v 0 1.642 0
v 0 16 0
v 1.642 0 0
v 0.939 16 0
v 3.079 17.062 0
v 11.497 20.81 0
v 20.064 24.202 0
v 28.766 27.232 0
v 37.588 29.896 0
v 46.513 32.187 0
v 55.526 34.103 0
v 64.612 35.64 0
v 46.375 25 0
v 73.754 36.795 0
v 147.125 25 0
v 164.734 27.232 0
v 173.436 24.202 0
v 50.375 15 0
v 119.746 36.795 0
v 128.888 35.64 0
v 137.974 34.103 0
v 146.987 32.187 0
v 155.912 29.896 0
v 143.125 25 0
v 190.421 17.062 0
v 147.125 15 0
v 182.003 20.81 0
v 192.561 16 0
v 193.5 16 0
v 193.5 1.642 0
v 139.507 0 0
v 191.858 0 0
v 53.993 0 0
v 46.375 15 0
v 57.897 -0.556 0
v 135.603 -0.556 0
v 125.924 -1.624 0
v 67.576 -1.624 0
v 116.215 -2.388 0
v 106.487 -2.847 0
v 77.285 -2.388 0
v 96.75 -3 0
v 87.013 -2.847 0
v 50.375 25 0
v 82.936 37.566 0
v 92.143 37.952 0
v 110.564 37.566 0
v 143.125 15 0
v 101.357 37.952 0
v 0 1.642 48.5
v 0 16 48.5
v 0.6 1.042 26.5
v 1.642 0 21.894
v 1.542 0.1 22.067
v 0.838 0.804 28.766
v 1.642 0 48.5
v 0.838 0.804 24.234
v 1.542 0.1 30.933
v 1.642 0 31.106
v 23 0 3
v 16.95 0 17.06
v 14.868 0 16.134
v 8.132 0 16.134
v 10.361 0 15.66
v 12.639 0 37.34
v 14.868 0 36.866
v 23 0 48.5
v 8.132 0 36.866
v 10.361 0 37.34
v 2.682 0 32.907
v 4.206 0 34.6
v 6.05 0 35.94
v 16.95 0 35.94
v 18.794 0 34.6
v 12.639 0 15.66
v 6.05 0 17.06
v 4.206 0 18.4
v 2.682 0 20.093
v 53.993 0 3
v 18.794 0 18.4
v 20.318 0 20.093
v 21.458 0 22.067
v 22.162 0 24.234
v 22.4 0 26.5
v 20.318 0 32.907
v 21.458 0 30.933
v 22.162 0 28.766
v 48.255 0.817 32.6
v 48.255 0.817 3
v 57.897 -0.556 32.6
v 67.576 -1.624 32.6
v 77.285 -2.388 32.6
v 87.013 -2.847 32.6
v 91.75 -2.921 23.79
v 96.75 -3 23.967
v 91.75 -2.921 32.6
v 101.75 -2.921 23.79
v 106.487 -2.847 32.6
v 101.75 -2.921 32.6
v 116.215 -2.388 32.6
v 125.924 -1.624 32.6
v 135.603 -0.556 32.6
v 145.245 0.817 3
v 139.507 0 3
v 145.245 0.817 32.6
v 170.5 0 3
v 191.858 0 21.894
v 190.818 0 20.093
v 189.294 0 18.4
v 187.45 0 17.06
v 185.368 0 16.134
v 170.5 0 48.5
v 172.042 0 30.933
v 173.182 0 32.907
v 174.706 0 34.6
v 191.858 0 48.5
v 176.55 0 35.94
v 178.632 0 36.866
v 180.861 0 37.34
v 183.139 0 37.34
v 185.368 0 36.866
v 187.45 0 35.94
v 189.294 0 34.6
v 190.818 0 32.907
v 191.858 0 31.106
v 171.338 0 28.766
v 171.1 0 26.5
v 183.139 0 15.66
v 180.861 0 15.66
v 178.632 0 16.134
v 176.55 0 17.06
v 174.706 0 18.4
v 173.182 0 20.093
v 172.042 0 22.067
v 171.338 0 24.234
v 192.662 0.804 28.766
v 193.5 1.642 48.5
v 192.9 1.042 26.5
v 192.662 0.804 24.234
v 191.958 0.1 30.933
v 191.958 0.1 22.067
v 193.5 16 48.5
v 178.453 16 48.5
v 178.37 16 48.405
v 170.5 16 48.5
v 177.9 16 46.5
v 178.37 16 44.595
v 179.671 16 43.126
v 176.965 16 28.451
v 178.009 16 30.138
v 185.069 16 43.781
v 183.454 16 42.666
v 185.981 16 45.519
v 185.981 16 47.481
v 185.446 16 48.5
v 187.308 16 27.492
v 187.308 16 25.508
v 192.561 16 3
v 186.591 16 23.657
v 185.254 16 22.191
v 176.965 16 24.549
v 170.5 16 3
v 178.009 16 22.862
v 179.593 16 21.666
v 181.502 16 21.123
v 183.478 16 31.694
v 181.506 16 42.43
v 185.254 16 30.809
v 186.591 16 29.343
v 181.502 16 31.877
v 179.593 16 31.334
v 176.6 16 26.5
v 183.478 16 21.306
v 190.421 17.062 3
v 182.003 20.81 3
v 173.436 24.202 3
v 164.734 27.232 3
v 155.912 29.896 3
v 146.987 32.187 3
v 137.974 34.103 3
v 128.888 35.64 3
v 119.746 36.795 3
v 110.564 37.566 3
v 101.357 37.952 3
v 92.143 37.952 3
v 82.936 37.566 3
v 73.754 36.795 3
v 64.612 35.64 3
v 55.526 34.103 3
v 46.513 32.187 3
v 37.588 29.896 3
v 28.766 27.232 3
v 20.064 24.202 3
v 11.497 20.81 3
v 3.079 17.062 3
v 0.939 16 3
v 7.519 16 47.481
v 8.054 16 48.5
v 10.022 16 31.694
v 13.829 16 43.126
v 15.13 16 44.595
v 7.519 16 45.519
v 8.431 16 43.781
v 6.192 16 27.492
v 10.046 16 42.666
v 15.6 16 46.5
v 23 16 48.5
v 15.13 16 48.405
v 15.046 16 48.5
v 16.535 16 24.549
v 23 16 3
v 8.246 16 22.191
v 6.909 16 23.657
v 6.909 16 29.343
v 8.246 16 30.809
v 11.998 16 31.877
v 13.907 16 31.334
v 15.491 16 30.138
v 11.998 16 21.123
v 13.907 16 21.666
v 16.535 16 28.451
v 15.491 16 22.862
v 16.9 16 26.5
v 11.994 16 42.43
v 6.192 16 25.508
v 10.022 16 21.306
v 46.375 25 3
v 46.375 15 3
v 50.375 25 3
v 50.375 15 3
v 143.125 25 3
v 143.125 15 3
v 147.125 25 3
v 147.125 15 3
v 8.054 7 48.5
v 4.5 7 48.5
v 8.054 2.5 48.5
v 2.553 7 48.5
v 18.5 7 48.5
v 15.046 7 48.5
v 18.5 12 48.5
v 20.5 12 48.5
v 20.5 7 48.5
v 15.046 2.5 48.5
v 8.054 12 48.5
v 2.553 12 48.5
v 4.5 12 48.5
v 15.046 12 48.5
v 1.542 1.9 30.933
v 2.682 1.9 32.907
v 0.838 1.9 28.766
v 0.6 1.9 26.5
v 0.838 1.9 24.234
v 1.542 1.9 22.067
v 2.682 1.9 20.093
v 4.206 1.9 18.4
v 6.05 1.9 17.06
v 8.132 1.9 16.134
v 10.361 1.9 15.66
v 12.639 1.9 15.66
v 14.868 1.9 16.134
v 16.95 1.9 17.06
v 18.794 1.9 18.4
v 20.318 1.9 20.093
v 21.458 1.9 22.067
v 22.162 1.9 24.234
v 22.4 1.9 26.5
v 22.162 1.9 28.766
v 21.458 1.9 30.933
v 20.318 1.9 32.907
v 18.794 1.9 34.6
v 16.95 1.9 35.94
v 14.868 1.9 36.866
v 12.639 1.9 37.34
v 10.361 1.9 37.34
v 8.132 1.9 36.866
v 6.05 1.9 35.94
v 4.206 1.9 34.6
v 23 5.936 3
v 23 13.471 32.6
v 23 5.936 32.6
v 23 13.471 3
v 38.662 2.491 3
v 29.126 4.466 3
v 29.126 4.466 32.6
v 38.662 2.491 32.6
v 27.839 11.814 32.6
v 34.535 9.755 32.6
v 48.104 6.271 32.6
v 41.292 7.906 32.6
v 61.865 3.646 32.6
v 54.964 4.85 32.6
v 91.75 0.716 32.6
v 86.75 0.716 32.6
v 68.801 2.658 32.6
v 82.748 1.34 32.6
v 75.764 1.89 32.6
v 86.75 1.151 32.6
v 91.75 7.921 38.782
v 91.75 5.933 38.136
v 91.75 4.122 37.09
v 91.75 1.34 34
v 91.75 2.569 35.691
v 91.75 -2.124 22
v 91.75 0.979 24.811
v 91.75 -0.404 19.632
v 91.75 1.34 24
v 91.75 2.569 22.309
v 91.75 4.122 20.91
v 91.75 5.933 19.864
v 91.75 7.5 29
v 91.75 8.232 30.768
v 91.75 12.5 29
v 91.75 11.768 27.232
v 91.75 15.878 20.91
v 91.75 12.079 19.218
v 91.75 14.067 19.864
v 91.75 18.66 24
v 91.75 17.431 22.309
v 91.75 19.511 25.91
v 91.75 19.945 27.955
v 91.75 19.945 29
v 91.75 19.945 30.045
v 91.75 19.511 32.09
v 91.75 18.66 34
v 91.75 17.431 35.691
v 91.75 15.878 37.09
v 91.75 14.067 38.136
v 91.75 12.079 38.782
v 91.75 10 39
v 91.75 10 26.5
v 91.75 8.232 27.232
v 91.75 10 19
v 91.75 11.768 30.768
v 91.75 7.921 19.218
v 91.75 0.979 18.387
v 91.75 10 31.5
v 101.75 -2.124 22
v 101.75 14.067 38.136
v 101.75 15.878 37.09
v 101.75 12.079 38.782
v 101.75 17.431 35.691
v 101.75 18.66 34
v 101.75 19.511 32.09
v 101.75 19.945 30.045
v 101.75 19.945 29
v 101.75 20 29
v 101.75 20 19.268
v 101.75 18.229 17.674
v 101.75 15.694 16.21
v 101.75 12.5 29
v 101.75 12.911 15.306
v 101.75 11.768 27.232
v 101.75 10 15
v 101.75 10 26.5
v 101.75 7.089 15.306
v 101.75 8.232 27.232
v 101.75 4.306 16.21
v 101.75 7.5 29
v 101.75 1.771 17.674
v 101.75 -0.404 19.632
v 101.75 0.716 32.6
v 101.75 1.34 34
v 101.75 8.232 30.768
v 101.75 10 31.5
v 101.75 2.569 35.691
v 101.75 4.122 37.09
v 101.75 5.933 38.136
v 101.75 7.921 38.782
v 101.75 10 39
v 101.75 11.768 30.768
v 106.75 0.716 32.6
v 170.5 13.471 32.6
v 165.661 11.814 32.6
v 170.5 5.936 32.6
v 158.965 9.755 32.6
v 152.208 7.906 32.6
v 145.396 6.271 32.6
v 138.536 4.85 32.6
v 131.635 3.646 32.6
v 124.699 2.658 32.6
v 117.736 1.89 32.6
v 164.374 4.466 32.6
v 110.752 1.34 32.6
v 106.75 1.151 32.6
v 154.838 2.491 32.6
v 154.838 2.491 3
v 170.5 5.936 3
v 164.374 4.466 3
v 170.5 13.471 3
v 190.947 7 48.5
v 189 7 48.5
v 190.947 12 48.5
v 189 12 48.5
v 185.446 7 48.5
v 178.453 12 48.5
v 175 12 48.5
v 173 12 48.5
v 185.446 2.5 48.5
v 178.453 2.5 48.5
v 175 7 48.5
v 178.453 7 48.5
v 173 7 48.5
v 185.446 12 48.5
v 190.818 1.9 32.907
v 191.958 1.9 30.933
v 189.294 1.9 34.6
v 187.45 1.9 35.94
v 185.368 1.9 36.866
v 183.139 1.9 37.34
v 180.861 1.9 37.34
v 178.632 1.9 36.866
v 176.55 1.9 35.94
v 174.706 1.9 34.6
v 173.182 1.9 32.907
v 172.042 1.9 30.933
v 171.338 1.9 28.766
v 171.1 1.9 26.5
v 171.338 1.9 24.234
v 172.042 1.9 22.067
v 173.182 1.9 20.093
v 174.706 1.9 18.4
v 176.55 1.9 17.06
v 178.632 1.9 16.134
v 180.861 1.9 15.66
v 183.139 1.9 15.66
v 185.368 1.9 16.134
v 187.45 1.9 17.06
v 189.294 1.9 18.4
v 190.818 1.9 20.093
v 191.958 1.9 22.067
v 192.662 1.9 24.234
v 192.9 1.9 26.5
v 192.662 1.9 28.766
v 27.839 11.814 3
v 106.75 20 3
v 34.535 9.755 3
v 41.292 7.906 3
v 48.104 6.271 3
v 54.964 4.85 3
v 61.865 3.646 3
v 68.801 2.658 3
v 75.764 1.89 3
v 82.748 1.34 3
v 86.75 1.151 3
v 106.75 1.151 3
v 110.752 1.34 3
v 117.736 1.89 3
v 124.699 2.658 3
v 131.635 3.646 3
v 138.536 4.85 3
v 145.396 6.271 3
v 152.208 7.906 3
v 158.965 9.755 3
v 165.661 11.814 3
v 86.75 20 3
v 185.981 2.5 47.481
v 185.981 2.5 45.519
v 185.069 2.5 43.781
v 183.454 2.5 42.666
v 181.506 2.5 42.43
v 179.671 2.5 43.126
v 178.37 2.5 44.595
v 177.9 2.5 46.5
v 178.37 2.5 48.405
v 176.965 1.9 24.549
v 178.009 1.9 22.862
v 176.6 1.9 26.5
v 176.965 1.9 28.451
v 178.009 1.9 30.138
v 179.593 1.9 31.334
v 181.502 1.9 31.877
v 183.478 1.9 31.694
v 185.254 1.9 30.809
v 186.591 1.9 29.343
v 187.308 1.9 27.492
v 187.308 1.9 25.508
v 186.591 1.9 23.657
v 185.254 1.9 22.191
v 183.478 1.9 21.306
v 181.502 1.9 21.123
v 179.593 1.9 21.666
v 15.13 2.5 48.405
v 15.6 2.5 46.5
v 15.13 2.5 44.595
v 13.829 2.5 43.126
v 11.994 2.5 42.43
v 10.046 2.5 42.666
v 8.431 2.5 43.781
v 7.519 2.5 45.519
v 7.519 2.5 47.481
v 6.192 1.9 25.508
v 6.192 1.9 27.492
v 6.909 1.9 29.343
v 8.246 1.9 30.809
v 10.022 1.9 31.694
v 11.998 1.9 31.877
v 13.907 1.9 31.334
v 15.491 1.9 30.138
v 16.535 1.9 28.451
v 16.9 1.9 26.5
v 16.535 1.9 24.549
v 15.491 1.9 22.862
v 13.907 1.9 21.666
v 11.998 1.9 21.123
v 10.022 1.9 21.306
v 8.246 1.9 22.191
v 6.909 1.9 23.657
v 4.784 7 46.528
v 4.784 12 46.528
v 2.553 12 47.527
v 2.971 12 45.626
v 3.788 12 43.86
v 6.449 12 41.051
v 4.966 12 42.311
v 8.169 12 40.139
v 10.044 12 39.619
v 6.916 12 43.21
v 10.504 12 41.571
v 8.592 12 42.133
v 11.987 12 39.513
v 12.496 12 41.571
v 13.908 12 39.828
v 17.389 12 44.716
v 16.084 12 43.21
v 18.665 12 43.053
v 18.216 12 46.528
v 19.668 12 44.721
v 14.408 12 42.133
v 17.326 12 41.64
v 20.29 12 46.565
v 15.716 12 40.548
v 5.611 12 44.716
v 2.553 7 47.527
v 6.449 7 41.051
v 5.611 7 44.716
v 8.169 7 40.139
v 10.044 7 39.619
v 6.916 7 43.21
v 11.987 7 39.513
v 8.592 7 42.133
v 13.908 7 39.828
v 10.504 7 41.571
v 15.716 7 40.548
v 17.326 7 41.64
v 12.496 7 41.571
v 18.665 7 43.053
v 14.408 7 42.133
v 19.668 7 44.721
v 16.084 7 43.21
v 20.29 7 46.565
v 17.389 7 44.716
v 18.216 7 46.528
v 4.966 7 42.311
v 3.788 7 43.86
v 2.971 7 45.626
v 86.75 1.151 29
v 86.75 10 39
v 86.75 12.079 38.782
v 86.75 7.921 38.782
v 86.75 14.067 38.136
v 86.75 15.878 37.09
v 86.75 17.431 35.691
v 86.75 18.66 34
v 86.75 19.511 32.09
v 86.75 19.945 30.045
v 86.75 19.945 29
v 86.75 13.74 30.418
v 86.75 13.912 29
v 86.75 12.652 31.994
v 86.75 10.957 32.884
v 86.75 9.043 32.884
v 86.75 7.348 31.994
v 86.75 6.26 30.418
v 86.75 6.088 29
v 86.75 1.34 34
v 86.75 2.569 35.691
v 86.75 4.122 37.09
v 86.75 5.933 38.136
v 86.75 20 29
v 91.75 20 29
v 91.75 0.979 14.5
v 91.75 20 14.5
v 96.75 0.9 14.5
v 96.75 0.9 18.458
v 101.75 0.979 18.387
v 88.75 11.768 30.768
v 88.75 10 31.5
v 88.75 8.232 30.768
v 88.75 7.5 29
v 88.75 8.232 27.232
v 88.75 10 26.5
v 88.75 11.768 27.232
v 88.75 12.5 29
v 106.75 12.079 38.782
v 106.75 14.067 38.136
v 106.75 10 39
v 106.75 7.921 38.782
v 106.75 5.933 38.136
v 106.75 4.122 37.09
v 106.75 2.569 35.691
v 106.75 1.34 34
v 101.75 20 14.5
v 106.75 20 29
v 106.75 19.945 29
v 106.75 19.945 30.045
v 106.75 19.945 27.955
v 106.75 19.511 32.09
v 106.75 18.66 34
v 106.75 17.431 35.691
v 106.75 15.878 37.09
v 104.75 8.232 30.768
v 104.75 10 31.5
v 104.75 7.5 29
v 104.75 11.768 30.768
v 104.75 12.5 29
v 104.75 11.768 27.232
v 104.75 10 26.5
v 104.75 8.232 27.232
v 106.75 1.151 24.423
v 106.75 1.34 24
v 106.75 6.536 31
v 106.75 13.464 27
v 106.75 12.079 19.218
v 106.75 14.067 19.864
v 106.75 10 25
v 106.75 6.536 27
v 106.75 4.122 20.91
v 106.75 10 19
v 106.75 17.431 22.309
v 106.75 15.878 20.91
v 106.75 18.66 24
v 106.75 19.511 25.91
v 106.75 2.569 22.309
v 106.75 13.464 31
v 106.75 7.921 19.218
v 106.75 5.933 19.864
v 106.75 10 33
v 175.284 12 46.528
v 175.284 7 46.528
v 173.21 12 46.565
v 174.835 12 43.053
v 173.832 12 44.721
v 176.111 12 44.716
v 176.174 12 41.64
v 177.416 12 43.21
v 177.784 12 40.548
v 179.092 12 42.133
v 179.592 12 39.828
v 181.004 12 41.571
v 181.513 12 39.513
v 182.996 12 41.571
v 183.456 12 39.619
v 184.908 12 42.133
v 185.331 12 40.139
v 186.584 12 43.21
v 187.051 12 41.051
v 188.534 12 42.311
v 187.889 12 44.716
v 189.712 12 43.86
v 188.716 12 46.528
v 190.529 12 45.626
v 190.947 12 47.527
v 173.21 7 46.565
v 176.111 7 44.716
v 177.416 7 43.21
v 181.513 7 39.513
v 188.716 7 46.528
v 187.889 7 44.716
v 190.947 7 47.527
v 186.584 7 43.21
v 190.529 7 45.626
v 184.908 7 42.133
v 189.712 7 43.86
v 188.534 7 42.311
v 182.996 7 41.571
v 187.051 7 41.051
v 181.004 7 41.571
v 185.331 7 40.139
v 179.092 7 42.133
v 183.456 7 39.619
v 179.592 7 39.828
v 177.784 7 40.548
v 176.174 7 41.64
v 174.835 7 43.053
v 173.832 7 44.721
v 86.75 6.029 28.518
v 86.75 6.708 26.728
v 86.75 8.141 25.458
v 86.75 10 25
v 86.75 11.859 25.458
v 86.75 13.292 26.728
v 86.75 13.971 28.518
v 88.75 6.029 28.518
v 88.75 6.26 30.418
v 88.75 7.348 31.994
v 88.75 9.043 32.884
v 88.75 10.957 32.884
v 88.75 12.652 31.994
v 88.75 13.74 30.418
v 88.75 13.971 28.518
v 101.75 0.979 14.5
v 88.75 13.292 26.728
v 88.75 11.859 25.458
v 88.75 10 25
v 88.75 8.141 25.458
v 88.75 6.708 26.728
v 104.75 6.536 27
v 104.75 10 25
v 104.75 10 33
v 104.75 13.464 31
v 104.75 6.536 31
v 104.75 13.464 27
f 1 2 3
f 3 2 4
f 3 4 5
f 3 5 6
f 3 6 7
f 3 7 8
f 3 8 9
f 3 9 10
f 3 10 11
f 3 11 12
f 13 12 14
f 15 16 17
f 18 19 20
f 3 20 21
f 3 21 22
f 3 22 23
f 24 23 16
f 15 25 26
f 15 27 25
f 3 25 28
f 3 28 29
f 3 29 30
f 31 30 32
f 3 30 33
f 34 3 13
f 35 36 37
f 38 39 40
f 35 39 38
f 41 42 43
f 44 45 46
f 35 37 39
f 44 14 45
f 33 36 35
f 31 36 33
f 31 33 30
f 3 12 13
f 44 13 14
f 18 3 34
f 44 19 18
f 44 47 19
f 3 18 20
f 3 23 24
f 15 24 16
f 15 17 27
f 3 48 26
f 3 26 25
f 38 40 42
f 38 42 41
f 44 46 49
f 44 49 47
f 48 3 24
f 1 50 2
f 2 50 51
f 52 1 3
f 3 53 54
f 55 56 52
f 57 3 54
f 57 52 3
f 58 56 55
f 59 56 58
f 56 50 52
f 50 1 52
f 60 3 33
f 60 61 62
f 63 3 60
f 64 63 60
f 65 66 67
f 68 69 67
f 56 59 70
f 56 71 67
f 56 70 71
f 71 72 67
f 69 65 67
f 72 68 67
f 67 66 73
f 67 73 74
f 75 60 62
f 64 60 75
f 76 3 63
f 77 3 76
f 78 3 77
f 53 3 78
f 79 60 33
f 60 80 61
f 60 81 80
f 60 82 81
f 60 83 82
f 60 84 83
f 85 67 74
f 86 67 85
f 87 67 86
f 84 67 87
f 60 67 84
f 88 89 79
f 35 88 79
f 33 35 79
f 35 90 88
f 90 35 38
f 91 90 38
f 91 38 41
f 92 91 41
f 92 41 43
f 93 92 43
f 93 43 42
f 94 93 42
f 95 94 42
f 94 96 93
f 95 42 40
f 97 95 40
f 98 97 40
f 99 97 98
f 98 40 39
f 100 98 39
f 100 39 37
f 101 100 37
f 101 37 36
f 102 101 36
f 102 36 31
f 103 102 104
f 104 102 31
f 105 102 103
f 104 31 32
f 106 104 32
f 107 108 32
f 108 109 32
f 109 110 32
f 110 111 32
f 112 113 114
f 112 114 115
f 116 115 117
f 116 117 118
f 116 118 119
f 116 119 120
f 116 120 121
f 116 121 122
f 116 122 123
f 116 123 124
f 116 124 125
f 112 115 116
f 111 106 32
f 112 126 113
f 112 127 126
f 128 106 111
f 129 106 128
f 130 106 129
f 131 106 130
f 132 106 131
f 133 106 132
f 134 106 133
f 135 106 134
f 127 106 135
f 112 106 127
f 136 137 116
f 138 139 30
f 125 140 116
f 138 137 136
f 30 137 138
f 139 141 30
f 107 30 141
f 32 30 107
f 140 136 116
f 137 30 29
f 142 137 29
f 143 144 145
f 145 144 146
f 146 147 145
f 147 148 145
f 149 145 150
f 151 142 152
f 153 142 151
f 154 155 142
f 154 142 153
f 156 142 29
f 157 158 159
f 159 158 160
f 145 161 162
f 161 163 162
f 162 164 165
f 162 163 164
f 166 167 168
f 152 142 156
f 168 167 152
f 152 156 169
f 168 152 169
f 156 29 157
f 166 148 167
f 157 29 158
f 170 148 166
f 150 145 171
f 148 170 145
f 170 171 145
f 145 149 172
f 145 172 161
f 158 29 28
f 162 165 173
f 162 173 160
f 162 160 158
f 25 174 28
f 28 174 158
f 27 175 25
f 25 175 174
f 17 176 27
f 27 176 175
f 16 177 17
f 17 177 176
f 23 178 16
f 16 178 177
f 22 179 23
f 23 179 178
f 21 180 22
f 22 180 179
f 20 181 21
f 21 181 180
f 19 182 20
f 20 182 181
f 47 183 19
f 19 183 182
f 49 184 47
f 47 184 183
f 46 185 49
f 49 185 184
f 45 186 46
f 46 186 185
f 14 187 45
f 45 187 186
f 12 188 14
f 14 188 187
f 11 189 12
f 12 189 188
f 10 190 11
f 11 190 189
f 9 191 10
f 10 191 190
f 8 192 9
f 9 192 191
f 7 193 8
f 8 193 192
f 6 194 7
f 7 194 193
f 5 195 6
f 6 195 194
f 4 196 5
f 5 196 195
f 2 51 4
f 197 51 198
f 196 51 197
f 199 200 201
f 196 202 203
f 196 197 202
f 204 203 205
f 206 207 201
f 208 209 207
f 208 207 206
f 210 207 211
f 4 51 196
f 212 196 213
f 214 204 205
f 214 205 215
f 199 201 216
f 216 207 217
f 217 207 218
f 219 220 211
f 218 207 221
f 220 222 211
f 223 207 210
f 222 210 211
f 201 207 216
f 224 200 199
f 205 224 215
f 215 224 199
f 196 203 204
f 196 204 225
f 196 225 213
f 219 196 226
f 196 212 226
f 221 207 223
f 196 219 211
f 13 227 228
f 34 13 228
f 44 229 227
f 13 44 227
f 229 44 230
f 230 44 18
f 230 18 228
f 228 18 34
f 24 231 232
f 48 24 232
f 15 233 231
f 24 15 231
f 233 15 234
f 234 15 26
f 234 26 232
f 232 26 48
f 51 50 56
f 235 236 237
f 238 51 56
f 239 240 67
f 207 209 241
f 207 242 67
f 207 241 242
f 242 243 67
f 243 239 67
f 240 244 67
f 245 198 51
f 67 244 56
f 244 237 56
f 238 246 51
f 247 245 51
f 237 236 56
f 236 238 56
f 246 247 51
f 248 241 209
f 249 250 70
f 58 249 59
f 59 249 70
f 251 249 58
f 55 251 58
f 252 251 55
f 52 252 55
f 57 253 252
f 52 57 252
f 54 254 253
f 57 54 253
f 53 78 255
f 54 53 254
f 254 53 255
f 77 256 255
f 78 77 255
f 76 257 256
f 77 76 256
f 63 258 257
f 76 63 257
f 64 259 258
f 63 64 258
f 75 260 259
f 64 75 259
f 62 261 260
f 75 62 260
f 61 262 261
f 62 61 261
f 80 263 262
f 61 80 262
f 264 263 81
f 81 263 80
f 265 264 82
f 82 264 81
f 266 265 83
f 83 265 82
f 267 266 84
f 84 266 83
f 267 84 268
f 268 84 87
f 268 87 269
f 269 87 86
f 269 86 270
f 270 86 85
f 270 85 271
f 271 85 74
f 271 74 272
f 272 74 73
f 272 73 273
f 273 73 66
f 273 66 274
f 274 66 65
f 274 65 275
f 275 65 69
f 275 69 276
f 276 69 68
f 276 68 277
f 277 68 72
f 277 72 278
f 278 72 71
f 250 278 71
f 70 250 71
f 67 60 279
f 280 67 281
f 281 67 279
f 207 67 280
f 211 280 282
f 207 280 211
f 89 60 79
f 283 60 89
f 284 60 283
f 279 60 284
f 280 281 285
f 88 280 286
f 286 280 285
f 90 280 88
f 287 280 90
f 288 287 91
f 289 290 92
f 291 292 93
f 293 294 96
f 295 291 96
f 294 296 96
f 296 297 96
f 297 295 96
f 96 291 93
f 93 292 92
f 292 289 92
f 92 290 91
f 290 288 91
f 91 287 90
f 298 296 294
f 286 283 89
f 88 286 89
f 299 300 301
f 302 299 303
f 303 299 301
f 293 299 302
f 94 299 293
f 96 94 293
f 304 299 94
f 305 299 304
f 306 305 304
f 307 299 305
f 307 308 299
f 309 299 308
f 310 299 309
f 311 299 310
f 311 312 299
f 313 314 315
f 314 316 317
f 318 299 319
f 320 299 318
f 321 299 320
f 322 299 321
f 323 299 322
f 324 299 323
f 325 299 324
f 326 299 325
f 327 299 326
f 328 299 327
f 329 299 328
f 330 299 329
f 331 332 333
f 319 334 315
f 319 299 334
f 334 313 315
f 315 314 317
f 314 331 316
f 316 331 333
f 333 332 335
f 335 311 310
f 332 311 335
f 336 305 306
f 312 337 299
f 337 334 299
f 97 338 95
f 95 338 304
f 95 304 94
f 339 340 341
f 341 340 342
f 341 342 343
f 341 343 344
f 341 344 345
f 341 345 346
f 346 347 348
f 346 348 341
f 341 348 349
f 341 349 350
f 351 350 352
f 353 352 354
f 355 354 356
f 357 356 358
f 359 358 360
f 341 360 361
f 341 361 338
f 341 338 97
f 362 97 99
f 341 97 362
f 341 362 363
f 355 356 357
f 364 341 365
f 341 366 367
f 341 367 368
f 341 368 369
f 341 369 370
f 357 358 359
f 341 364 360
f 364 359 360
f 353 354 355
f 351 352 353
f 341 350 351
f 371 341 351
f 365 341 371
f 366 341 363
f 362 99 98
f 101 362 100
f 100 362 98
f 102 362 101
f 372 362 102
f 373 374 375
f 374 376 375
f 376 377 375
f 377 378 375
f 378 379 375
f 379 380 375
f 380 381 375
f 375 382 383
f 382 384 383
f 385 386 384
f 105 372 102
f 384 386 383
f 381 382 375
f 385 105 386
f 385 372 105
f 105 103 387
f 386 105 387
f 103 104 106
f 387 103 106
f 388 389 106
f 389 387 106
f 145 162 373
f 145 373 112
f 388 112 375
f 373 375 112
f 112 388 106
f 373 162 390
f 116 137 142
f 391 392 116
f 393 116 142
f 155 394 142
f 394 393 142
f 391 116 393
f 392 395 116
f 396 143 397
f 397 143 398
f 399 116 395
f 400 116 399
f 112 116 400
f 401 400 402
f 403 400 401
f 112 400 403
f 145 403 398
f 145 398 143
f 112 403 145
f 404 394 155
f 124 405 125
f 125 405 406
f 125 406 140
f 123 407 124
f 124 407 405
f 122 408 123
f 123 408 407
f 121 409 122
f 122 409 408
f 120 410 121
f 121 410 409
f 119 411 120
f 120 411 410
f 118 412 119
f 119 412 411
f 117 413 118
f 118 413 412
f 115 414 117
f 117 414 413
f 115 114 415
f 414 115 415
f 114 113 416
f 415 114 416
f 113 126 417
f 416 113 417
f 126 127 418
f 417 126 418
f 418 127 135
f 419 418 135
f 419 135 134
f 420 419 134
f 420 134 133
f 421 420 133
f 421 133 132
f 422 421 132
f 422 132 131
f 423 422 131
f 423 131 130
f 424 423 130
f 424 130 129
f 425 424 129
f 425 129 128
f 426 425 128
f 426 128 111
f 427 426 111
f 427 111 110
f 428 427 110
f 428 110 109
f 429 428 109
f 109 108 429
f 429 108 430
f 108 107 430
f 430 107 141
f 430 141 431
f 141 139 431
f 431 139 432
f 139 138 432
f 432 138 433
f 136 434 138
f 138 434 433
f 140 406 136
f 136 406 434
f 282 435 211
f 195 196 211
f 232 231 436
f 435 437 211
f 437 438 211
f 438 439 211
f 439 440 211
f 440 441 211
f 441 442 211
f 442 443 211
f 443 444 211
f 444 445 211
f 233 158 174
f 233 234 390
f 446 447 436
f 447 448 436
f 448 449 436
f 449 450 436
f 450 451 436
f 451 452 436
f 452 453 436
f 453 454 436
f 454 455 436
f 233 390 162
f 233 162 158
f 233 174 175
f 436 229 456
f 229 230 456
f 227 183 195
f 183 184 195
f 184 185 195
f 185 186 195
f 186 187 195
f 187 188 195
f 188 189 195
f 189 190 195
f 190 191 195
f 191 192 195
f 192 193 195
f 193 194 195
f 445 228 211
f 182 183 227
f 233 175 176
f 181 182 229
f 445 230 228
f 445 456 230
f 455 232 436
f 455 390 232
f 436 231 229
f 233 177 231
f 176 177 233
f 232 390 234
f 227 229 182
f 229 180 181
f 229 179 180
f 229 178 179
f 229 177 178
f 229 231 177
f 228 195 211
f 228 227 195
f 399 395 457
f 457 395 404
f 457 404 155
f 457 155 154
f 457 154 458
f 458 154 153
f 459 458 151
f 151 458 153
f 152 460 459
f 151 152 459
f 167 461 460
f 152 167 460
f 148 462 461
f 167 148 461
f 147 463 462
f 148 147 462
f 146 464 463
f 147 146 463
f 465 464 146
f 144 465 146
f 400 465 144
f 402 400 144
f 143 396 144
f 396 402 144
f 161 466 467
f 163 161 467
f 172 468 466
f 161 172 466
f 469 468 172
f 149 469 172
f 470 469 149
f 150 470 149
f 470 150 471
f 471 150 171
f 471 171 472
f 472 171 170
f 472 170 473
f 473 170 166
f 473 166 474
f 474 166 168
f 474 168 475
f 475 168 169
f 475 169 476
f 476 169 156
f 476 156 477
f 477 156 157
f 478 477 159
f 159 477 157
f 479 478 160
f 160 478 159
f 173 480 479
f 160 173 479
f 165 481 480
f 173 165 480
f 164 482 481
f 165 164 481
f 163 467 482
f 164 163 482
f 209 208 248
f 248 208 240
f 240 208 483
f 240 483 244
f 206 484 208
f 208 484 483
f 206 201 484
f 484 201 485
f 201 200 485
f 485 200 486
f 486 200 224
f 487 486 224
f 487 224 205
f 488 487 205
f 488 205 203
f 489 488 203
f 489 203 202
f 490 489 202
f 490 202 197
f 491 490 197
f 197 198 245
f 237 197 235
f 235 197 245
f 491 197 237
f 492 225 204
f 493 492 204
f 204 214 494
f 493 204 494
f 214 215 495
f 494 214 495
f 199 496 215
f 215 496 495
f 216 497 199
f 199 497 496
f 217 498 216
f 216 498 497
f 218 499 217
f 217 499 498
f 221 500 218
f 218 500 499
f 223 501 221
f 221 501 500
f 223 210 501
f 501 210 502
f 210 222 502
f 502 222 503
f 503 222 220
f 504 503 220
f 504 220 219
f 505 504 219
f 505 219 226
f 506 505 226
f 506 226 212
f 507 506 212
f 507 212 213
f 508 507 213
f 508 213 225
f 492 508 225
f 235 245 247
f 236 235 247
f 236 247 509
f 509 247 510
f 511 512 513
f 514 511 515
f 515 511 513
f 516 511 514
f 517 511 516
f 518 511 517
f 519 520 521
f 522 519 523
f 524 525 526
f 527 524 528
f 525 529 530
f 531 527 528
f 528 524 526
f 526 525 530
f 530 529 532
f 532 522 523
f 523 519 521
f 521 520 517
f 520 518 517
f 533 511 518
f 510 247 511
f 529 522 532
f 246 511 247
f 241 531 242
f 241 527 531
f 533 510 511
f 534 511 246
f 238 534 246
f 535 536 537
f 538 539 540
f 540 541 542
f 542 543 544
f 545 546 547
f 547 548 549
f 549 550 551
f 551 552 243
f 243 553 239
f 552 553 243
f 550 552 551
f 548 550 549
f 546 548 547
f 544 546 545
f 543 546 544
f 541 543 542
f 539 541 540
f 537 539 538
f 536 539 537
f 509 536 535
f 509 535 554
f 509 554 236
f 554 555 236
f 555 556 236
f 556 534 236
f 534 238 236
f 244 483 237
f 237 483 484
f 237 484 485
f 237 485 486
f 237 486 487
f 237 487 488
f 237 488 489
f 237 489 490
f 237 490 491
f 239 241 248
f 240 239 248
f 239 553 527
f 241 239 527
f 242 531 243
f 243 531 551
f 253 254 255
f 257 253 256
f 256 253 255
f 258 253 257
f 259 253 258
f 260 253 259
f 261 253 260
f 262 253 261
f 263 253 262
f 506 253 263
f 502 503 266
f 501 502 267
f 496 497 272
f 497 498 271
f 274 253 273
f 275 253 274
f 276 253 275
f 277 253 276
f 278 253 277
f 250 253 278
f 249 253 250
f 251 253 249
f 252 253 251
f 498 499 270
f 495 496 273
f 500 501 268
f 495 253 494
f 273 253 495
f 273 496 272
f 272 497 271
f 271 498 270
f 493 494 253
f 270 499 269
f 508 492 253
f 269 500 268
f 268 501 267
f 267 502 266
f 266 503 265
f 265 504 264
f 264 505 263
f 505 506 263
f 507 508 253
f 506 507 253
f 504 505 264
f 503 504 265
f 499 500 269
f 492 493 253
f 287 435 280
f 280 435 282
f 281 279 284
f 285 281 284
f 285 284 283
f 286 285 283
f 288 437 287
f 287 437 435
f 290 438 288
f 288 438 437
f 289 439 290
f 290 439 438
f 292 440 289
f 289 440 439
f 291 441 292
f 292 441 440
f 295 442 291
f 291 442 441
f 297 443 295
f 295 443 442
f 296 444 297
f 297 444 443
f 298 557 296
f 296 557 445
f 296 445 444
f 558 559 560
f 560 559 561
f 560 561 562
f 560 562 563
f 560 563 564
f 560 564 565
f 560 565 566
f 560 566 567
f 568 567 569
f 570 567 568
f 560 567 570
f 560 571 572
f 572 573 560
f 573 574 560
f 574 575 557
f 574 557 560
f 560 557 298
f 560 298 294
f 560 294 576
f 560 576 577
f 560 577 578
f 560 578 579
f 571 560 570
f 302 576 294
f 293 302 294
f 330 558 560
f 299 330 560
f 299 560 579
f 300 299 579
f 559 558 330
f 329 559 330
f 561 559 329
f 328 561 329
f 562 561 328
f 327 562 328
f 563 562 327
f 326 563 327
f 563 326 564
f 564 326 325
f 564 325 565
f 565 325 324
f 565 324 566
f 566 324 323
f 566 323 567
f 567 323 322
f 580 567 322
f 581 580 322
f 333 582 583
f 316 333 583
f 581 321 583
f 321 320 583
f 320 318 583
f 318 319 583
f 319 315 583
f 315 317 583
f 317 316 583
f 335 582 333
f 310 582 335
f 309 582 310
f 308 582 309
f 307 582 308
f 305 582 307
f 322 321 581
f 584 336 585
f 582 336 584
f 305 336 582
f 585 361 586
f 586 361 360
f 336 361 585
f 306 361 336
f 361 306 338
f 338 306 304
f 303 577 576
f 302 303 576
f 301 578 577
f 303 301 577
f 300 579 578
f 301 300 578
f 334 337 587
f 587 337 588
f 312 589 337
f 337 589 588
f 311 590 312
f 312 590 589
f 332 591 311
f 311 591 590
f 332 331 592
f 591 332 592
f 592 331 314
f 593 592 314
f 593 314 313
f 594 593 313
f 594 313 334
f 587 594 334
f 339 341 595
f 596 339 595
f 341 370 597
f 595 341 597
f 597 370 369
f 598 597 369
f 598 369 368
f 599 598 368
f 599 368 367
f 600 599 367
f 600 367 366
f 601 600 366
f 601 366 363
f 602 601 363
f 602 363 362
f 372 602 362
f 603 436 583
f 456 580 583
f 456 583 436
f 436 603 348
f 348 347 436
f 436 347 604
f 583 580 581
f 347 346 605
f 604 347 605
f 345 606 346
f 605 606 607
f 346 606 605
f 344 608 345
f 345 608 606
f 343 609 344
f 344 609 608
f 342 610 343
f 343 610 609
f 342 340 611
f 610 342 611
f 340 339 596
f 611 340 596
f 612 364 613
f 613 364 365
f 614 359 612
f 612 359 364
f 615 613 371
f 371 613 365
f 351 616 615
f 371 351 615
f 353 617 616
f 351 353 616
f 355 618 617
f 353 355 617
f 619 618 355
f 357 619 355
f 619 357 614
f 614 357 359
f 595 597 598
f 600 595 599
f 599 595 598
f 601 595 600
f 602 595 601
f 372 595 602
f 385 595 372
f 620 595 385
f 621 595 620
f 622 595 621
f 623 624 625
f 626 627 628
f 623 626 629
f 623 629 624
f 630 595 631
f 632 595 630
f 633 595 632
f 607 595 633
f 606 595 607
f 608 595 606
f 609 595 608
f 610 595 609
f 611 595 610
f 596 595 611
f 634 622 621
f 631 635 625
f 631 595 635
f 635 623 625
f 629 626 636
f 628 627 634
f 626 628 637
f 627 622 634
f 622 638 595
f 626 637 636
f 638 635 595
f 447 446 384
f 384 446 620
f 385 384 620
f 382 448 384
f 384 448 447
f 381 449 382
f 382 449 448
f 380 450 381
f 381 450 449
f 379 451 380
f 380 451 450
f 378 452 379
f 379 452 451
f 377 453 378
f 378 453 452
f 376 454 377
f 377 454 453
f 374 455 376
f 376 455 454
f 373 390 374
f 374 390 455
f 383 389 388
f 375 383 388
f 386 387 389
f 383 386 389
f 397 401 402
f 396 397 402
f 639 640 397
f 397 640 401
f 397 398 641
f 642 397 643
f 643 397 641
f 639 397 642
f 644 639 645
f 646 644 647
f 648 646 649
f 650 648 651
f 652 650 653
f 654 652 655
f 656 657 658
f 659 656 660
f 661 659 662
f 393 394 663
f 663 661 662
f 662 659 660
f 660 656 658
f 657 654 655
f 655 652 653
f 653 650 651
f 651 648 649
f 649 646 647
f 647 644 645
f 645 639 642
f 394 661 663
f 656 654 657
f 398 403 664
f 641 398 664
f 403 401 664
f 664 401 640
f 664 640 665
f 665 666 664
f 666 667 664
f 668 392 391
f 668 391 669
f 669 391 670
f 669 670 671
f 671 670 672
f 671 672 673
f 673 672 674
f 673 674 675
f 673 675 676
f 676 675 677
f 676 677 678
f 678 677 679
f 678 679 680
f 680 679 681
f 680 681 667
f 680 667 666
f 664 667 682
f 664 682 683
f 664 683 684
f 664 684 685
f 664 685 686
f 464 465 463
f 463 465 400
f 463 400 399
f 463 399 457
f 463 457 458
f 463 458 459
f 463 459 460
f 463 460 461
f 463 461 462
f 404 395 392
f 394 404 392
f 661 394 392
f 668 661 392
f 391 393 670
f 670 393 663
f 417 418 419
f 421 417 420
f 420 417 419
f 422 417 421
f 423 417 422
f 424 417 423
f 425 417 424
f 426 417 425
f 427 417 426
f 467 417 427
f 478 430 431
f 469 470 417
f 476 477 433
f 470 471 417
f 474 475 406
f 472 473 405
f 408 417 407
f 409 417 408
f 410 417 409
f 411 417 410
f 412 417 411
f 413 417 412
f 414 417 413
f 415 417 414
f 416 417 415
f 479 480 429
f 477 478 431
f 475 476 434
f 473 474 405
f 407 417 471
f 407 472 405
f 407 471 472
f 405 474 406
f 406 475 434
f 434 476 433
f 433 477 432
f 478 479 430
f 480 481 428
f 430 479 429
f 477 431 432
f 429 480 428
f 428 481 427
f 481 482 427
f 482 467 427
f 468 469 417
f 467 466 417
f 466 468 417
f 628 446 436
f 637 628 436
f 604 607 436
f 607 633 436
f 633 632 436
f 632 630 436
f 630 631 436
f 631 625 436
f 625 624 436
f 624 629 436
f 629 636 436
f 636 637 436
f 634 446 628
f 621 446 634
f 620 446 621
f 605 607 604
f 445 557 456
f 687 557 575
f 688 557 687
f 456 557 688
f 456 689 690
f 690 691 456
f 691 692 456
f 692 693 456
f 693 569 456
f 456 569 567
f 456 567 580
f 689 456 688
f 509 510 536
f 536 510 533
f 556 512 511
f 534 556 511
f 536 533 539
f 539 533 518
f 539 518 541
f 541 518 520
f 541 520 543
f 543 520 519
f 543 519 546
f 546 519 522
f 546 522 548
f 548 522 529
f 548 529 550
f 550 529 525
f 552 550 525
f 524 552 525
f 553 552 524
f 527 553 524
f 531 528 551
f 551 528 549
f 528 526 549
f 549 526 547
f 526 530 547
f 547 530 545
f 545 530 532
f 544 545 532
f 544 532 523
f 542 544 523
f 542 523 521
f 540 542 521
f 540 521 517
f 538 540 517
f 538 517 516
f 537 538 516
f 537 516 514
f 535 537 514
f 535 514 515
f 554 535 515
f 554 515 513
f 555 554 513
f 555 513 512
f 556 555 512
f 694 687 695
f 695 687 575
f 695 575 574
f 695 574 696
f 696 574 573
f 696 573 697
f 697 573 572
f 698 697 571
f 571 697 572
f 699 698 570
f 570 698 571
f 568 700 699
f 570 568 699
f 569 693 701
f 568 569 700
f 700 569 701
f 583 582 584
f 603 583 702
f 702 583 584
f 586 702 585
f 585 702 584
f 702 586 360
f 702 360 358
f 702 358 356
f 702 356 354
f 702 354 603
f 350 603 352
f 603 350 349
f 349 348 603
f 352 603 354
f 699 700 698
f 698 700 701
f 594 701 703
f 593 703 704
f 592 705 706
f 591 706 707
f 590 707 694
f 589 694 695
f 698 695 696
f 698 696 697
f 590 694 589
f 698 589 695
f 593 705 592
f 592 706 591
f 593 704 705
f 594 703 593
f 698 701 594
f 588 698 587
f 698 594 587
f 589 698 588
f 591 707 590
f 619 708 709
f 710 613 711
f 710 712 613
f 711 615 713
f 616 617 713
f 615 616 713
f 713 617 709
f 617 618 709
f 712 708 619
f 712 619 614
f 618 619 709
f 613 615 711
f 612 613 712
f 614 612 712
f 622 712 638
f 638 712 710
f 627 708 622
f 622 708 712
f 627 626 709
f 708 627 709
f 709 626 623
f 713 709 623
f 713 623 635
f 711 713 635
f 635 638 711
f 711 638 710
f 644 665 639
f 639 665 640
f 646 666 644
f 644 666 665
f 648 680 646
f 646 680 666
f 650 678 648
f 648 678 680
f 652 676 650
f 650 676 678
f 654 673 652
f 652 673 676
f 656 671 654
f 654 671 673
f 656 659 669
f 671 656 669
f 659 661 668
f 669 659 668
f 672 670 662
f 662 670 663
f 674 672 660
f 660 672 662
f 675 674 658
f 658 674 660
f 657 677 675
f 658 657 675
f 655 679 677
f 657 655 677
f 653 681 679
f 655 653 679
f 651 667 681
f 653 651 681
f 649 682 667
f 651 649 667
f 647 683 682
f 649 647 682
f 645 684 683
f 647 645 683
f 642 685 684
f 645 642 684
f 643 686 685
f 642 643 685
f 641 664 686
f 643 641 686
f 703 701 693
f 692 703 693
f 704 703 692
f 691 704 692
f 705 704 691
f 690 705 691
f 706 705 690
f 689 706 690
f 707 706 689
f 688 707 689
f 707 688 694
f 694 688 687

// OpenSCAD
// file: configuration.scad
smooth_rod_d      = 8;
threaded_rod_d    = 10;
tie_wrap_w        = 5;
tie_wrap_t        = 2;
washer_d          = 21;
height_of_threaded = 26.5;
height_of_smooth = height_of_threaded + 11 + 9;
height_of_post = height_of_smooth+2;

belt_width = 6.5;
belt_tooth_distance = 2;
belt_tooth_ratio = 0.5;
belt_thickness = 0.8;

idler_bearing_inner_d = 4; // 624 bearing
// main file
//
// Parametric single-piece y ends for Reprap Wilson
// GNU GPL v3
// by Martin Rice <mrice411@gmail.com>
//
include <configuration.scad>

washer_recess     = 2; // recesses the washer into the end.
idler_offset_y    = 6;
base_thickness    = 3;
tie_wrap_extra = 1;
belt_h = 29;
idler_w = 10; // the gap provided for the bearing holder
idler_wall_t = 5;
end_w = 193.5;
idler_wall_h = 32.6;

yend_idler();

module yend_idler()
{
  difference() {
    union() {
      // thin base under the end (optional)
      bigbase();
      brace();

      // first corner
      endpost();

      // second corner
      translate([end_w,0,0]) scale([-1,1,1]) endpost();

      // idler mount
      translate([end_w/2,0,0]) idler_post(); 
    }

     // bevels on outer corners
     translate([-1,-23/2,-1])    rotate([0,0,45]) cube([10,10,50]);
     translate([end_w+1,-23/2,-1]) rotate([0,0,45]) cube([10,10,50]);

     // cutout for idler
     #translate([end_w/2,0,0]) translate([-idler_wall_t,10,belt_h]) rotate([0,90,0]) cylinder(r=10+4,h=idler_w);

     // slots for attaching end to table surface if desired
     #translate([end_w/2-end_w/4,20,0]) cube(size=[4,10,10],center=true);
     #translate([end_w/2+end_w/4,20,0]) cube(size=[4,10,10],center=true);
  }
}


module idler_post()
{
    difference() {
         union() {
             translate([idler_w/2,0,0]) {
                   cube(size=[idler_wall_t,20,belt_h]);
                   translate([0,10,belt_h]) rotate([0,90,0]) cylinder(r=10,h=idler_wall_t);
             }
             translate([-idler_w/2-idler_wall_t,0,0]) {
                   cube(size=[idler_wall_t,20,belt_h]);
                   translate([0,10,belt_h]) rotate([0,90,0]) cylinder(r=10,h=idler_wall_t);
             }
             translate([-idler_w,0,0]) cube(size=[idler_wall_t * 2 + idler_w,20,belt_h/2]);
             
             //translate([-idler_w,-1,idler_wall_h]) rotate([0,90,0]) cylinder(r=idler_bearing_inner_d/2,h=20,$fn=20);

         } 
         // holes for idler bolt
         #translate([-12,10,belt_h]) rotate([0,90,0]) {
             cylinder(r=idler_bearing_inner_d/2+.5,h=25);
             translate([0,0,1]) cylinder(r=idler_bearing_inner_d,h=3);
             translate([0,0,idler_w+idler_wall_t*2]) cylinder(r=idler_bearing_inner_d,h=3,$fn=6);
         }
         
         
    }
}

module endpost()
{
     difference() {
       union() {
         difference() {
           cube([23,16,height_of_post]);
           #translate([23/2,7,height_of_post]) rotate([-90,0,0]) cylinder(r=smooth_rod_d/2+2+tie_wrap_t+tie_wrap_extra,h=tie_wrap_w);
         }

         difference() {
         translate([23/2,7,height_of_post]) rotate([-90,0,0]) cylinder(r=smooth_rod_d/2+2+tie_wrap_extra,h=tie_wrap_w);
         translate([0,0,height_of_post]) cube([23,16,10]);
         }
       }

       translate([23/2,-10,height_of_threaded ]) rotate([-90,0,0]) cylinder(r=threaded_rod_d/2+.4,h=380);
       translate([23/2,-.1,height_of_threaded ]) rotate([-90,0,0]) cylinder(r=washer_d/2+.4,h=washer_recess);
       translate([23/2,2.5,height_of_smooth]) rotate([-90,0,0]) cylinder(r=smooth_rod_d/2+.1,h=380);
     }

}

module bigbase()
{
   difference() {
    intersection() {
       cube([193.5,55,base_thickness]);
       translate([193.5/2,-182,-1]) cylinder(r=220,h=base_thickness+2,$fn=150);
       }  
    //#translate([193.5/2,0,0]) cylinder(r=10,h=10);
}
}

module brace() {
    translate([193.5,17,0]) rotate([0,0,180]) difference() {  translate([193.5/2,-290,0]) cylinder(r=310,h=32.6,$fn=200);
                    translate([193.5/2,-211.9+5,-2]) cylinder(r=223,h=50,$fn=200);
                    translate([-320,3,-2]) rotate([0,0,270]) cube([900,900,50]);
                    translate([-20,-1,-1]) cube([43,16,47]);
                    translate([193.5-22.9,-1,-1]) scale([1,1,1]) cube([43,16,47]);
                    //translate([192.5/2-23/2+5.9,0,14.5]) cube([11.96,40,20]);

}
}
